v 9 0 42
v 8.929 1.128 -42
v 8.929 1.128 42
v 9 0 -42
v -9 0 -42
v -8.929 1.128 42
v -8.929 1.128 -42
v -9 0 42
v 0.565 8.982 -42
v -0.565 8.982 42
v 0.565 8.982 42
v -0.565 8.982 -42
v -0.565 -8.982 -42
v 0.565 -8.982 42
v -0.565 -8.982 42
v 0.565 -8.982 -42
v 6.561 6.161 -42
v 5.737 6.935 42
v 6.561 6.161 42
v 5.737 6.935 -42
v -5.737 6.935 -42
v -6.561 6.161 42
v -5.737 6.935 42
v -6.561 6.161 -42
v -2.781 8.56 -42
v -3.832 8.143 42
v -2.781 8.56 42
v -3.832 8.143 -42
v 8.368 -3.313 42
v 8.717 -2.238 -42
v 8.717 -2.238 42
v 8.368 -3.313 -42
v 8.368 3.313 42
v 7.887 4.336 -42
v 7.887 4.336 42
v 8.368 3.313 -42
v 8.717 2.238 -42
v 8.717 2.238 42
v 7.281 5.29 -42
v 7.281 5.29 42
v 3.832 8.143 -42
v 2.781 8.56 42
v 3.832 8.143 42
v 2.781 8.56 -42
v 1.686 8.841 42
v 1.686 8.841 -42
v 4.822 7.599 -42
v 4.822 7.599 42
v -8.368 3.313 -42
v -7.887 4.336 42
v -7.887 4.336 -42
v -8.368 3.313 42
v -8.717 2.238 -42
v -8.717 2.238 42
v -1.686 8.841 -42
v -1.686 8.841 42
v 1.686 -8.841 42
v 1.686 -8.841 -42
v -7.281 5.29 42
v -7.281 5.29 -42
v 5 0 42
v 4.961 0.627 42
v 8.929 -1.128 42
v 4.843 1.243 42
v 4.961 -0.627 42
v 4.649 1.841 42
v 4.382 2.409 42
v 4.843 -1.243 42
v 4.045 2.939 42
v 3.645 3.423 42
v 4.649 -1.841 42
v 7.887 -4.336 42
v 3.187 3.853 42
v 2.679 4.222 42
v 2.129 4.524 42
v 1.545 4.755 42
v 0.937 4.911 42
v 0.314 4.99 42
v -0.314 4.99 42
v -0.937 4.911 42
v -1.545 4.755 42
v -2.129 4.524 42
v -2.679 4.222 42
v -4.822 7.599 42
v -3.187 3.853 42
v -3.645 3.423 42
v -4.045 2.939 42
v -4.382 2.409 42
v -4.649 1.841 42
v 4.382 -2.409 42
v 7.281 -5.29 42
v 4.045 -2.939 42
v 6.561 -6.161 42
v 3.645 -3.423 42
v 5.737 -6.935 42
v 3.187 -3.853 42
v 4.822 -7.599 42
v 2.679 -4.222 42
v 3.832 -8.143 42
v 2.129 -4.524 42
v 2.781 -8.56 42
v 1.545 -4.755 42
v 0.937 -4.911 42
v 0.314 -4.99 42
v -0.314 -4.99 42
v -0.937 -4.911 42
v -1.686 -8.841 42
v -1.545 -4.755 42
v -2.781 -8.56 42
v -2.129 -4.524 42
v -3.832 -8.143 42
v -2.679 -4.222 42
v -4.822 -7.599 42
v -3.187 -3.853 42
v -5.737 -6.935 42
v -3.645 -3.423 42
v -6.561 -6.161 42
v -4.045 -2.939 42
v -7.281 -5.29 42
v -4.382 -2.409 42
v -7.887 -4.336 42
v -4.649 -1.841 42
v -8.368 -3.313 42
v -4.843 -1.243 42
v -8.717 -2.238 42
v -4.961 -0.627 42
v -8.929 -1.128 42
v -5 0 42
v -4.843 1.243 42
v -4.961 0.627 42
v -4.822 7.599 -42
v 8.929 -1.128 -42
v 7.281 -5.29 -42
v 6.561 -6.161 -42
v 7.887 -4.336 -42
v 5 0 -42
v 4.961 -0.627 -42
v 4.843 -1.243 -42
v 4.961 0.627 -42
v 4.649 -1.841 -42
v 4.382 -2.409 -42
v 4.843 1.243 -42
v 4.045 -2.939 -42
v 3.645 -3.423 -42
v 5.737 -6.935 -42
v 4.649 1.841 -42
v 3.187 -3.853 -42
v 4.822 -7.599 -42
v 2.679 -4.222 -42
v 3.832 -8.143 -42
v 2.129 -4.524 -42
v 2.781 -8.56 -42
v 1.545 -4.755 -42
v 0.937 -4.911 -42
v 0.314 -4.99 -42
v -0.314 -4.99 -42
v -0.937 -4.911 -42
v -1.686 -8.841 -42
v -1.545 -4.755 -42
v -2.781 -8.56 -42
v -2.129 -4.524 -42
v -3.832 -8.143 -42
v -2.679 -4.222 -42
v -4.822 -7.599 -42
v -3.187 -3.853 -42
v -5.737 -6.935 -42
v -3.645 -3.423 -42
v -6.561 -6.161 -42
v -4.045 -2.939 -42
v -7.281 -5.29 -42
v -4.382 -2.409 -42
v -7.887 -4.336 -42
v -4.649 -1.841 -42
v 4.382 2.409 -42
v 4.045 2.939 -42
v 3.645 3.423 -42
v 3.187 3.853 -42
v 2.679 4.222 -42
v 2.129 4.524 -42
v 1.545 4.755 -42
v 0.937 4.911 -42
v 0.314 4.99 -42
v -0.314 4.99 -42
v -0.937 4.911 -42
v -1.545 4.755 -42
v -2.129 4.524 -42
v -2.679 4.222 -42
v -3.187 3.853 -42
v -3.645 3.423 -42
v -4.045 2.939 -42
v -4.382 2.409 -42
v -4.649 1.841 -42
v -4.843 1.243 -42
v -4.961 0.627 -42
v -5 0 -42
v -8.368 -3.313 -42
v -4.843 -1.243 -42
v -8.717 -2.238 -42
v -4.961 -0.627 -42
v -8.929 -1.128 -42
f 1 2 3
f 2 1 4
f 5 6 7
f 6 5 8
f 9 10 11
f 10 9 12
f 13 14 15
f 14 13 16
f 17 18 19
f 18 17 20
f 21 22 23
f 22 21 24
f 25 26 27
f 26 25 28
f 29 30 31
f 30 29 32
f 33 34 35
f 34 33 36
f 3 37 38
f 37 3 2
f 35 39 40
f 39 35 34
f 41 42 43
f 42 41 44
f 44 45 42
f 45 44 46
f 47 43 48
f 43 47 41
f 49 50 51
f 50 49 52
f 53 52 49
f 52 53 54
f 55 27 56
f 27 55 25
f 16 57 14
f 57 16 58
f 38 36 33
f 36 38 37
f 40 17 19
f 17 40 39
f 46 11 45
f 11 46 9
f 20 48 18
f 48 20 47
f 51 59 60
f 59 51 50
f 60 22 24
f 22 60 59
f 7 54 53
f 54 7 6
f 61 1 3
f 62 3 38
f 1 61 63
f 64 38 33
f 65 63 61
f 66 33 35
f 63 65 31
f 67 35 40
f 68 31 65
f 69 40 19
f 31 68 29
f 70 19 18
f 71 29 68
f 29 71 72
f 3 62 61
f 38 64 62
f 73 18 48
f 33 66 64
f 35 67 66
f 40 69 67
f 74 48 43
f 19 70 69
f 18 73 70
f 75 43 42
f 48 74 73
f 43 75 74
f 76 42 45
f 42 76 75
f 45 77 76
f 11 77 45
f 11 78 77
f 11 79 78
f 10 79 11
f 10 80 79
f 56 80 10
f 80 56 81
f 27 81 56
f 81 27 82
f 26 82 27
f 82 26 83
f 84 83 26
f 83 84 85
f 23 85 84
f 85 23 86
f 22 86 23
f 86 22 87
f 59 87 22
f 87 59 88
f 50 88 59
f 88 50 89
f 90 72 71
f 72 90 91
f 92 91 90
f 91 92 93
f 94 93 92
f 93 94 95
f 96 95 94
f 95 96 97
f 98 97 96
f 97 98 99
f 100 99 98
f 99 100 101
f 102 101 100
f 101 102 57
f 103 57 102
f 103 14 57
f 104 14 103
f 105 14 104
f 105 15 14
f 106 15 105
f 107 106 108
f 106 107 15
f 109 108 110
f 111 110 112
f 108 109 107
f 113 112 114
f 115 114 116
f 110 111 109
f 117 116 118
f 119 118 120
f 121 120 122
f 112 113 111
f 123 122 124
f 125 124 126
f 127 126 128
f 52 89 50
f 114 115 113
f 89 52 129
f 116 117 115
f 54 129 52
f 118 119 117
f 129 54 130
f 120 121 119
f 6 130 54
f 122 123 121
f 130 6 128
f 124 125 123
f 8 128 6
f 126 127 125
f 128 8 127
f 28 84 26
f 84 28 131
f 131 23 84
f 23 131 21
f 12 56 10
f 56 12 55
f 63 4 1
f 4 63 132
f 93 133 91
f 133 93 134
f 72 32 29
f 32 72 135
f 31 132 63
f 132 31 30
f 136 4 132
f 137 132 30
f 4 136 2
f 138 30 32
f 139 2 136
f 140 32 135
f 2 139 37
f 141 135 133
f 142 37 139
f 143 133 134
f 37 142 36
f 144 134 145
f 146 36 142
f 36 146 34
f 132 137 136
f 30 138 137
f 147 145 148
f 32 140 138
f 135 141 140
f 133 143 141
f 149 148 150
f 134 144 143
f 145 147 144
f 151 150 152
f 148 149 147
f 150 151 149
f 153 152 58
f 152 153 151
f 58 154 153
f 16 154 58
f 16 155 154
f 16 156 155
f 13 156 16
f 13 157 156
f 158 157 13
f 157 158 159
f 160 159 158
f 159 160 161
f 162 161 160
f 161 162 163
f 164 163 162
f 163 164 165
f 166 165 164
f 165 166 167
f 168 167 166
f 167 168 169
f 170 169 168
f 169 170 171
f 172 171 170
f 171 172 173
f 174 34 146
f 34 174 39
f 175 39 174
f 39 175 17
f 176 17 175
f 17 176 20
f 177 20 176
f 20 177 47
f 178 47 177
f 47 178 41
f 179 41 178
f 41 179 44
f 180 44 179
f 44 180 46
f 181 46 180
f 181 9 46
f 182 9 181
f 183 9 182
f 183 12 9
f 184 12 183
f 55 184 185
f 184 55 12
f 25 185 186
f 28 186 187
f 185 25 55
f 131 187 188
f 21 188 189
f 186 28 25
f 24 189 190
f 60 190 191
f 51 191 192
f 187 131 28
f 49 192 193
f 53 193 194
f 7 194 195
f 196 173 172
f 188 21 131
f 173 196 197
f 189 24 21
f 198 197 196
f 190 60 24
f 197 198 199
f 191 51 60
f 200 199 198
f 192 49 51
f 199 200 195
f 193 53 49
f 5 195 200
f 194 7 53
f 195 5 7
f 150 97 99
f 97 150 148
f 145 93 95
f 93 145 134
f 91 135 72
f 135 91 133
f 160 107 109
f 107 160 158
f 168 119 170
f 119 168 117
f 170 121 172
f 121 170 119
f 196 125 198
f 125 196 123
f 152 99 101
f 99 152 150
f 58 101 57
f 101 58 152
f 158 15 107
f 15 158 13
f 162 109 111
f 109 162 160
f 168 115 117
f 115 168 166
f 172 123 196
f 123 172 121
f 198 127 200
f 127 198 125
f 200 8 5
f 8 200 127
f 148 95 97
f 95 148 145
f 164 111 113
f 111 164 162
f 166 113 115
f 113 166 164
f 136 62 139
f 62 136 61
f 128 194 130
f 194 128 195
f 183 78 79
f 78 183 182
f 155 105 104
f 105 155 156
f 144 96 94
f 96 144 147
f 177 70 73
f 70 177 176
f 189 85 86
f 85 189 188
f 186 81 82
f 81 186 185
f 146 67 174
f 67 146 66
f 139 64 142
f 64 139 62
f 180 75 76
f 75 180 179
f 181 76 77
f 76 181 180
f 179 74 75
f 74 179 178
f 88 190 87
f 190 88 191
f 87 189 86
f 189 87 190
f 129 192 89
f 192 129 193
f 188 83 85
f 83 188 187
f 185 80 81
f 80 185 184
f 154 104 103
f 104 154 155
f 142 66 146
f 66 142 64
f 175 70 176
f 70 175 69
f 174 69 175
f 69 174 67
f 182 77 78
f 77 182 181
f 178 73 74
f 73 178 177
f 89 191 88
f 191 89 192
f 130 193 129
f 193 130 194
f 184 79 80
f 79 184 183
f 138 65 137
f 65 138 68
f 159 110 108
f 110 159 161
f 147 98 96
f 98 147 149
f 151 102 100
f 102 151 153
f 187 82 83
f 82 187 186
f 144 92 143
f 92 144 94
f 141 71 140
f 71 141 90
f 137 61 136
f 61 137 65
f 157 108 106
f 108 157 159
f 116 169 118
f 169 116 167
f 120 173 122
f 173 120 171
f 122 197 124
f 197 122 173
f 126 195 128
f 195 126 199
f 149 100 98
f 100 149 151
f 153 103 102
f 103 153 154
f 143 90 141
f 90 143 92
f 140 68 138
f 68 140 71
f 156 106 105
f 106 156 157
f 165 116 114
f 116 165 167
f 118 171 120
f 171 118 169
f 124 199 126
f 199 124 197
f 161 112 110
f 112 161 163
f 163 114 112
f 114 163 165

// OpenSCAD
$fn = 50;


difference() {
	union() {
		translate(v = [0, 0, -42.0000000000]) {
			cylinder(h = 84, r = 9.0000000000);
		}
	}
	union() {
		translate(v = [0, 0, -100.0000000000]) {
			cylinder(h = 200, r = 5.0000000000);
		}
	}
}
